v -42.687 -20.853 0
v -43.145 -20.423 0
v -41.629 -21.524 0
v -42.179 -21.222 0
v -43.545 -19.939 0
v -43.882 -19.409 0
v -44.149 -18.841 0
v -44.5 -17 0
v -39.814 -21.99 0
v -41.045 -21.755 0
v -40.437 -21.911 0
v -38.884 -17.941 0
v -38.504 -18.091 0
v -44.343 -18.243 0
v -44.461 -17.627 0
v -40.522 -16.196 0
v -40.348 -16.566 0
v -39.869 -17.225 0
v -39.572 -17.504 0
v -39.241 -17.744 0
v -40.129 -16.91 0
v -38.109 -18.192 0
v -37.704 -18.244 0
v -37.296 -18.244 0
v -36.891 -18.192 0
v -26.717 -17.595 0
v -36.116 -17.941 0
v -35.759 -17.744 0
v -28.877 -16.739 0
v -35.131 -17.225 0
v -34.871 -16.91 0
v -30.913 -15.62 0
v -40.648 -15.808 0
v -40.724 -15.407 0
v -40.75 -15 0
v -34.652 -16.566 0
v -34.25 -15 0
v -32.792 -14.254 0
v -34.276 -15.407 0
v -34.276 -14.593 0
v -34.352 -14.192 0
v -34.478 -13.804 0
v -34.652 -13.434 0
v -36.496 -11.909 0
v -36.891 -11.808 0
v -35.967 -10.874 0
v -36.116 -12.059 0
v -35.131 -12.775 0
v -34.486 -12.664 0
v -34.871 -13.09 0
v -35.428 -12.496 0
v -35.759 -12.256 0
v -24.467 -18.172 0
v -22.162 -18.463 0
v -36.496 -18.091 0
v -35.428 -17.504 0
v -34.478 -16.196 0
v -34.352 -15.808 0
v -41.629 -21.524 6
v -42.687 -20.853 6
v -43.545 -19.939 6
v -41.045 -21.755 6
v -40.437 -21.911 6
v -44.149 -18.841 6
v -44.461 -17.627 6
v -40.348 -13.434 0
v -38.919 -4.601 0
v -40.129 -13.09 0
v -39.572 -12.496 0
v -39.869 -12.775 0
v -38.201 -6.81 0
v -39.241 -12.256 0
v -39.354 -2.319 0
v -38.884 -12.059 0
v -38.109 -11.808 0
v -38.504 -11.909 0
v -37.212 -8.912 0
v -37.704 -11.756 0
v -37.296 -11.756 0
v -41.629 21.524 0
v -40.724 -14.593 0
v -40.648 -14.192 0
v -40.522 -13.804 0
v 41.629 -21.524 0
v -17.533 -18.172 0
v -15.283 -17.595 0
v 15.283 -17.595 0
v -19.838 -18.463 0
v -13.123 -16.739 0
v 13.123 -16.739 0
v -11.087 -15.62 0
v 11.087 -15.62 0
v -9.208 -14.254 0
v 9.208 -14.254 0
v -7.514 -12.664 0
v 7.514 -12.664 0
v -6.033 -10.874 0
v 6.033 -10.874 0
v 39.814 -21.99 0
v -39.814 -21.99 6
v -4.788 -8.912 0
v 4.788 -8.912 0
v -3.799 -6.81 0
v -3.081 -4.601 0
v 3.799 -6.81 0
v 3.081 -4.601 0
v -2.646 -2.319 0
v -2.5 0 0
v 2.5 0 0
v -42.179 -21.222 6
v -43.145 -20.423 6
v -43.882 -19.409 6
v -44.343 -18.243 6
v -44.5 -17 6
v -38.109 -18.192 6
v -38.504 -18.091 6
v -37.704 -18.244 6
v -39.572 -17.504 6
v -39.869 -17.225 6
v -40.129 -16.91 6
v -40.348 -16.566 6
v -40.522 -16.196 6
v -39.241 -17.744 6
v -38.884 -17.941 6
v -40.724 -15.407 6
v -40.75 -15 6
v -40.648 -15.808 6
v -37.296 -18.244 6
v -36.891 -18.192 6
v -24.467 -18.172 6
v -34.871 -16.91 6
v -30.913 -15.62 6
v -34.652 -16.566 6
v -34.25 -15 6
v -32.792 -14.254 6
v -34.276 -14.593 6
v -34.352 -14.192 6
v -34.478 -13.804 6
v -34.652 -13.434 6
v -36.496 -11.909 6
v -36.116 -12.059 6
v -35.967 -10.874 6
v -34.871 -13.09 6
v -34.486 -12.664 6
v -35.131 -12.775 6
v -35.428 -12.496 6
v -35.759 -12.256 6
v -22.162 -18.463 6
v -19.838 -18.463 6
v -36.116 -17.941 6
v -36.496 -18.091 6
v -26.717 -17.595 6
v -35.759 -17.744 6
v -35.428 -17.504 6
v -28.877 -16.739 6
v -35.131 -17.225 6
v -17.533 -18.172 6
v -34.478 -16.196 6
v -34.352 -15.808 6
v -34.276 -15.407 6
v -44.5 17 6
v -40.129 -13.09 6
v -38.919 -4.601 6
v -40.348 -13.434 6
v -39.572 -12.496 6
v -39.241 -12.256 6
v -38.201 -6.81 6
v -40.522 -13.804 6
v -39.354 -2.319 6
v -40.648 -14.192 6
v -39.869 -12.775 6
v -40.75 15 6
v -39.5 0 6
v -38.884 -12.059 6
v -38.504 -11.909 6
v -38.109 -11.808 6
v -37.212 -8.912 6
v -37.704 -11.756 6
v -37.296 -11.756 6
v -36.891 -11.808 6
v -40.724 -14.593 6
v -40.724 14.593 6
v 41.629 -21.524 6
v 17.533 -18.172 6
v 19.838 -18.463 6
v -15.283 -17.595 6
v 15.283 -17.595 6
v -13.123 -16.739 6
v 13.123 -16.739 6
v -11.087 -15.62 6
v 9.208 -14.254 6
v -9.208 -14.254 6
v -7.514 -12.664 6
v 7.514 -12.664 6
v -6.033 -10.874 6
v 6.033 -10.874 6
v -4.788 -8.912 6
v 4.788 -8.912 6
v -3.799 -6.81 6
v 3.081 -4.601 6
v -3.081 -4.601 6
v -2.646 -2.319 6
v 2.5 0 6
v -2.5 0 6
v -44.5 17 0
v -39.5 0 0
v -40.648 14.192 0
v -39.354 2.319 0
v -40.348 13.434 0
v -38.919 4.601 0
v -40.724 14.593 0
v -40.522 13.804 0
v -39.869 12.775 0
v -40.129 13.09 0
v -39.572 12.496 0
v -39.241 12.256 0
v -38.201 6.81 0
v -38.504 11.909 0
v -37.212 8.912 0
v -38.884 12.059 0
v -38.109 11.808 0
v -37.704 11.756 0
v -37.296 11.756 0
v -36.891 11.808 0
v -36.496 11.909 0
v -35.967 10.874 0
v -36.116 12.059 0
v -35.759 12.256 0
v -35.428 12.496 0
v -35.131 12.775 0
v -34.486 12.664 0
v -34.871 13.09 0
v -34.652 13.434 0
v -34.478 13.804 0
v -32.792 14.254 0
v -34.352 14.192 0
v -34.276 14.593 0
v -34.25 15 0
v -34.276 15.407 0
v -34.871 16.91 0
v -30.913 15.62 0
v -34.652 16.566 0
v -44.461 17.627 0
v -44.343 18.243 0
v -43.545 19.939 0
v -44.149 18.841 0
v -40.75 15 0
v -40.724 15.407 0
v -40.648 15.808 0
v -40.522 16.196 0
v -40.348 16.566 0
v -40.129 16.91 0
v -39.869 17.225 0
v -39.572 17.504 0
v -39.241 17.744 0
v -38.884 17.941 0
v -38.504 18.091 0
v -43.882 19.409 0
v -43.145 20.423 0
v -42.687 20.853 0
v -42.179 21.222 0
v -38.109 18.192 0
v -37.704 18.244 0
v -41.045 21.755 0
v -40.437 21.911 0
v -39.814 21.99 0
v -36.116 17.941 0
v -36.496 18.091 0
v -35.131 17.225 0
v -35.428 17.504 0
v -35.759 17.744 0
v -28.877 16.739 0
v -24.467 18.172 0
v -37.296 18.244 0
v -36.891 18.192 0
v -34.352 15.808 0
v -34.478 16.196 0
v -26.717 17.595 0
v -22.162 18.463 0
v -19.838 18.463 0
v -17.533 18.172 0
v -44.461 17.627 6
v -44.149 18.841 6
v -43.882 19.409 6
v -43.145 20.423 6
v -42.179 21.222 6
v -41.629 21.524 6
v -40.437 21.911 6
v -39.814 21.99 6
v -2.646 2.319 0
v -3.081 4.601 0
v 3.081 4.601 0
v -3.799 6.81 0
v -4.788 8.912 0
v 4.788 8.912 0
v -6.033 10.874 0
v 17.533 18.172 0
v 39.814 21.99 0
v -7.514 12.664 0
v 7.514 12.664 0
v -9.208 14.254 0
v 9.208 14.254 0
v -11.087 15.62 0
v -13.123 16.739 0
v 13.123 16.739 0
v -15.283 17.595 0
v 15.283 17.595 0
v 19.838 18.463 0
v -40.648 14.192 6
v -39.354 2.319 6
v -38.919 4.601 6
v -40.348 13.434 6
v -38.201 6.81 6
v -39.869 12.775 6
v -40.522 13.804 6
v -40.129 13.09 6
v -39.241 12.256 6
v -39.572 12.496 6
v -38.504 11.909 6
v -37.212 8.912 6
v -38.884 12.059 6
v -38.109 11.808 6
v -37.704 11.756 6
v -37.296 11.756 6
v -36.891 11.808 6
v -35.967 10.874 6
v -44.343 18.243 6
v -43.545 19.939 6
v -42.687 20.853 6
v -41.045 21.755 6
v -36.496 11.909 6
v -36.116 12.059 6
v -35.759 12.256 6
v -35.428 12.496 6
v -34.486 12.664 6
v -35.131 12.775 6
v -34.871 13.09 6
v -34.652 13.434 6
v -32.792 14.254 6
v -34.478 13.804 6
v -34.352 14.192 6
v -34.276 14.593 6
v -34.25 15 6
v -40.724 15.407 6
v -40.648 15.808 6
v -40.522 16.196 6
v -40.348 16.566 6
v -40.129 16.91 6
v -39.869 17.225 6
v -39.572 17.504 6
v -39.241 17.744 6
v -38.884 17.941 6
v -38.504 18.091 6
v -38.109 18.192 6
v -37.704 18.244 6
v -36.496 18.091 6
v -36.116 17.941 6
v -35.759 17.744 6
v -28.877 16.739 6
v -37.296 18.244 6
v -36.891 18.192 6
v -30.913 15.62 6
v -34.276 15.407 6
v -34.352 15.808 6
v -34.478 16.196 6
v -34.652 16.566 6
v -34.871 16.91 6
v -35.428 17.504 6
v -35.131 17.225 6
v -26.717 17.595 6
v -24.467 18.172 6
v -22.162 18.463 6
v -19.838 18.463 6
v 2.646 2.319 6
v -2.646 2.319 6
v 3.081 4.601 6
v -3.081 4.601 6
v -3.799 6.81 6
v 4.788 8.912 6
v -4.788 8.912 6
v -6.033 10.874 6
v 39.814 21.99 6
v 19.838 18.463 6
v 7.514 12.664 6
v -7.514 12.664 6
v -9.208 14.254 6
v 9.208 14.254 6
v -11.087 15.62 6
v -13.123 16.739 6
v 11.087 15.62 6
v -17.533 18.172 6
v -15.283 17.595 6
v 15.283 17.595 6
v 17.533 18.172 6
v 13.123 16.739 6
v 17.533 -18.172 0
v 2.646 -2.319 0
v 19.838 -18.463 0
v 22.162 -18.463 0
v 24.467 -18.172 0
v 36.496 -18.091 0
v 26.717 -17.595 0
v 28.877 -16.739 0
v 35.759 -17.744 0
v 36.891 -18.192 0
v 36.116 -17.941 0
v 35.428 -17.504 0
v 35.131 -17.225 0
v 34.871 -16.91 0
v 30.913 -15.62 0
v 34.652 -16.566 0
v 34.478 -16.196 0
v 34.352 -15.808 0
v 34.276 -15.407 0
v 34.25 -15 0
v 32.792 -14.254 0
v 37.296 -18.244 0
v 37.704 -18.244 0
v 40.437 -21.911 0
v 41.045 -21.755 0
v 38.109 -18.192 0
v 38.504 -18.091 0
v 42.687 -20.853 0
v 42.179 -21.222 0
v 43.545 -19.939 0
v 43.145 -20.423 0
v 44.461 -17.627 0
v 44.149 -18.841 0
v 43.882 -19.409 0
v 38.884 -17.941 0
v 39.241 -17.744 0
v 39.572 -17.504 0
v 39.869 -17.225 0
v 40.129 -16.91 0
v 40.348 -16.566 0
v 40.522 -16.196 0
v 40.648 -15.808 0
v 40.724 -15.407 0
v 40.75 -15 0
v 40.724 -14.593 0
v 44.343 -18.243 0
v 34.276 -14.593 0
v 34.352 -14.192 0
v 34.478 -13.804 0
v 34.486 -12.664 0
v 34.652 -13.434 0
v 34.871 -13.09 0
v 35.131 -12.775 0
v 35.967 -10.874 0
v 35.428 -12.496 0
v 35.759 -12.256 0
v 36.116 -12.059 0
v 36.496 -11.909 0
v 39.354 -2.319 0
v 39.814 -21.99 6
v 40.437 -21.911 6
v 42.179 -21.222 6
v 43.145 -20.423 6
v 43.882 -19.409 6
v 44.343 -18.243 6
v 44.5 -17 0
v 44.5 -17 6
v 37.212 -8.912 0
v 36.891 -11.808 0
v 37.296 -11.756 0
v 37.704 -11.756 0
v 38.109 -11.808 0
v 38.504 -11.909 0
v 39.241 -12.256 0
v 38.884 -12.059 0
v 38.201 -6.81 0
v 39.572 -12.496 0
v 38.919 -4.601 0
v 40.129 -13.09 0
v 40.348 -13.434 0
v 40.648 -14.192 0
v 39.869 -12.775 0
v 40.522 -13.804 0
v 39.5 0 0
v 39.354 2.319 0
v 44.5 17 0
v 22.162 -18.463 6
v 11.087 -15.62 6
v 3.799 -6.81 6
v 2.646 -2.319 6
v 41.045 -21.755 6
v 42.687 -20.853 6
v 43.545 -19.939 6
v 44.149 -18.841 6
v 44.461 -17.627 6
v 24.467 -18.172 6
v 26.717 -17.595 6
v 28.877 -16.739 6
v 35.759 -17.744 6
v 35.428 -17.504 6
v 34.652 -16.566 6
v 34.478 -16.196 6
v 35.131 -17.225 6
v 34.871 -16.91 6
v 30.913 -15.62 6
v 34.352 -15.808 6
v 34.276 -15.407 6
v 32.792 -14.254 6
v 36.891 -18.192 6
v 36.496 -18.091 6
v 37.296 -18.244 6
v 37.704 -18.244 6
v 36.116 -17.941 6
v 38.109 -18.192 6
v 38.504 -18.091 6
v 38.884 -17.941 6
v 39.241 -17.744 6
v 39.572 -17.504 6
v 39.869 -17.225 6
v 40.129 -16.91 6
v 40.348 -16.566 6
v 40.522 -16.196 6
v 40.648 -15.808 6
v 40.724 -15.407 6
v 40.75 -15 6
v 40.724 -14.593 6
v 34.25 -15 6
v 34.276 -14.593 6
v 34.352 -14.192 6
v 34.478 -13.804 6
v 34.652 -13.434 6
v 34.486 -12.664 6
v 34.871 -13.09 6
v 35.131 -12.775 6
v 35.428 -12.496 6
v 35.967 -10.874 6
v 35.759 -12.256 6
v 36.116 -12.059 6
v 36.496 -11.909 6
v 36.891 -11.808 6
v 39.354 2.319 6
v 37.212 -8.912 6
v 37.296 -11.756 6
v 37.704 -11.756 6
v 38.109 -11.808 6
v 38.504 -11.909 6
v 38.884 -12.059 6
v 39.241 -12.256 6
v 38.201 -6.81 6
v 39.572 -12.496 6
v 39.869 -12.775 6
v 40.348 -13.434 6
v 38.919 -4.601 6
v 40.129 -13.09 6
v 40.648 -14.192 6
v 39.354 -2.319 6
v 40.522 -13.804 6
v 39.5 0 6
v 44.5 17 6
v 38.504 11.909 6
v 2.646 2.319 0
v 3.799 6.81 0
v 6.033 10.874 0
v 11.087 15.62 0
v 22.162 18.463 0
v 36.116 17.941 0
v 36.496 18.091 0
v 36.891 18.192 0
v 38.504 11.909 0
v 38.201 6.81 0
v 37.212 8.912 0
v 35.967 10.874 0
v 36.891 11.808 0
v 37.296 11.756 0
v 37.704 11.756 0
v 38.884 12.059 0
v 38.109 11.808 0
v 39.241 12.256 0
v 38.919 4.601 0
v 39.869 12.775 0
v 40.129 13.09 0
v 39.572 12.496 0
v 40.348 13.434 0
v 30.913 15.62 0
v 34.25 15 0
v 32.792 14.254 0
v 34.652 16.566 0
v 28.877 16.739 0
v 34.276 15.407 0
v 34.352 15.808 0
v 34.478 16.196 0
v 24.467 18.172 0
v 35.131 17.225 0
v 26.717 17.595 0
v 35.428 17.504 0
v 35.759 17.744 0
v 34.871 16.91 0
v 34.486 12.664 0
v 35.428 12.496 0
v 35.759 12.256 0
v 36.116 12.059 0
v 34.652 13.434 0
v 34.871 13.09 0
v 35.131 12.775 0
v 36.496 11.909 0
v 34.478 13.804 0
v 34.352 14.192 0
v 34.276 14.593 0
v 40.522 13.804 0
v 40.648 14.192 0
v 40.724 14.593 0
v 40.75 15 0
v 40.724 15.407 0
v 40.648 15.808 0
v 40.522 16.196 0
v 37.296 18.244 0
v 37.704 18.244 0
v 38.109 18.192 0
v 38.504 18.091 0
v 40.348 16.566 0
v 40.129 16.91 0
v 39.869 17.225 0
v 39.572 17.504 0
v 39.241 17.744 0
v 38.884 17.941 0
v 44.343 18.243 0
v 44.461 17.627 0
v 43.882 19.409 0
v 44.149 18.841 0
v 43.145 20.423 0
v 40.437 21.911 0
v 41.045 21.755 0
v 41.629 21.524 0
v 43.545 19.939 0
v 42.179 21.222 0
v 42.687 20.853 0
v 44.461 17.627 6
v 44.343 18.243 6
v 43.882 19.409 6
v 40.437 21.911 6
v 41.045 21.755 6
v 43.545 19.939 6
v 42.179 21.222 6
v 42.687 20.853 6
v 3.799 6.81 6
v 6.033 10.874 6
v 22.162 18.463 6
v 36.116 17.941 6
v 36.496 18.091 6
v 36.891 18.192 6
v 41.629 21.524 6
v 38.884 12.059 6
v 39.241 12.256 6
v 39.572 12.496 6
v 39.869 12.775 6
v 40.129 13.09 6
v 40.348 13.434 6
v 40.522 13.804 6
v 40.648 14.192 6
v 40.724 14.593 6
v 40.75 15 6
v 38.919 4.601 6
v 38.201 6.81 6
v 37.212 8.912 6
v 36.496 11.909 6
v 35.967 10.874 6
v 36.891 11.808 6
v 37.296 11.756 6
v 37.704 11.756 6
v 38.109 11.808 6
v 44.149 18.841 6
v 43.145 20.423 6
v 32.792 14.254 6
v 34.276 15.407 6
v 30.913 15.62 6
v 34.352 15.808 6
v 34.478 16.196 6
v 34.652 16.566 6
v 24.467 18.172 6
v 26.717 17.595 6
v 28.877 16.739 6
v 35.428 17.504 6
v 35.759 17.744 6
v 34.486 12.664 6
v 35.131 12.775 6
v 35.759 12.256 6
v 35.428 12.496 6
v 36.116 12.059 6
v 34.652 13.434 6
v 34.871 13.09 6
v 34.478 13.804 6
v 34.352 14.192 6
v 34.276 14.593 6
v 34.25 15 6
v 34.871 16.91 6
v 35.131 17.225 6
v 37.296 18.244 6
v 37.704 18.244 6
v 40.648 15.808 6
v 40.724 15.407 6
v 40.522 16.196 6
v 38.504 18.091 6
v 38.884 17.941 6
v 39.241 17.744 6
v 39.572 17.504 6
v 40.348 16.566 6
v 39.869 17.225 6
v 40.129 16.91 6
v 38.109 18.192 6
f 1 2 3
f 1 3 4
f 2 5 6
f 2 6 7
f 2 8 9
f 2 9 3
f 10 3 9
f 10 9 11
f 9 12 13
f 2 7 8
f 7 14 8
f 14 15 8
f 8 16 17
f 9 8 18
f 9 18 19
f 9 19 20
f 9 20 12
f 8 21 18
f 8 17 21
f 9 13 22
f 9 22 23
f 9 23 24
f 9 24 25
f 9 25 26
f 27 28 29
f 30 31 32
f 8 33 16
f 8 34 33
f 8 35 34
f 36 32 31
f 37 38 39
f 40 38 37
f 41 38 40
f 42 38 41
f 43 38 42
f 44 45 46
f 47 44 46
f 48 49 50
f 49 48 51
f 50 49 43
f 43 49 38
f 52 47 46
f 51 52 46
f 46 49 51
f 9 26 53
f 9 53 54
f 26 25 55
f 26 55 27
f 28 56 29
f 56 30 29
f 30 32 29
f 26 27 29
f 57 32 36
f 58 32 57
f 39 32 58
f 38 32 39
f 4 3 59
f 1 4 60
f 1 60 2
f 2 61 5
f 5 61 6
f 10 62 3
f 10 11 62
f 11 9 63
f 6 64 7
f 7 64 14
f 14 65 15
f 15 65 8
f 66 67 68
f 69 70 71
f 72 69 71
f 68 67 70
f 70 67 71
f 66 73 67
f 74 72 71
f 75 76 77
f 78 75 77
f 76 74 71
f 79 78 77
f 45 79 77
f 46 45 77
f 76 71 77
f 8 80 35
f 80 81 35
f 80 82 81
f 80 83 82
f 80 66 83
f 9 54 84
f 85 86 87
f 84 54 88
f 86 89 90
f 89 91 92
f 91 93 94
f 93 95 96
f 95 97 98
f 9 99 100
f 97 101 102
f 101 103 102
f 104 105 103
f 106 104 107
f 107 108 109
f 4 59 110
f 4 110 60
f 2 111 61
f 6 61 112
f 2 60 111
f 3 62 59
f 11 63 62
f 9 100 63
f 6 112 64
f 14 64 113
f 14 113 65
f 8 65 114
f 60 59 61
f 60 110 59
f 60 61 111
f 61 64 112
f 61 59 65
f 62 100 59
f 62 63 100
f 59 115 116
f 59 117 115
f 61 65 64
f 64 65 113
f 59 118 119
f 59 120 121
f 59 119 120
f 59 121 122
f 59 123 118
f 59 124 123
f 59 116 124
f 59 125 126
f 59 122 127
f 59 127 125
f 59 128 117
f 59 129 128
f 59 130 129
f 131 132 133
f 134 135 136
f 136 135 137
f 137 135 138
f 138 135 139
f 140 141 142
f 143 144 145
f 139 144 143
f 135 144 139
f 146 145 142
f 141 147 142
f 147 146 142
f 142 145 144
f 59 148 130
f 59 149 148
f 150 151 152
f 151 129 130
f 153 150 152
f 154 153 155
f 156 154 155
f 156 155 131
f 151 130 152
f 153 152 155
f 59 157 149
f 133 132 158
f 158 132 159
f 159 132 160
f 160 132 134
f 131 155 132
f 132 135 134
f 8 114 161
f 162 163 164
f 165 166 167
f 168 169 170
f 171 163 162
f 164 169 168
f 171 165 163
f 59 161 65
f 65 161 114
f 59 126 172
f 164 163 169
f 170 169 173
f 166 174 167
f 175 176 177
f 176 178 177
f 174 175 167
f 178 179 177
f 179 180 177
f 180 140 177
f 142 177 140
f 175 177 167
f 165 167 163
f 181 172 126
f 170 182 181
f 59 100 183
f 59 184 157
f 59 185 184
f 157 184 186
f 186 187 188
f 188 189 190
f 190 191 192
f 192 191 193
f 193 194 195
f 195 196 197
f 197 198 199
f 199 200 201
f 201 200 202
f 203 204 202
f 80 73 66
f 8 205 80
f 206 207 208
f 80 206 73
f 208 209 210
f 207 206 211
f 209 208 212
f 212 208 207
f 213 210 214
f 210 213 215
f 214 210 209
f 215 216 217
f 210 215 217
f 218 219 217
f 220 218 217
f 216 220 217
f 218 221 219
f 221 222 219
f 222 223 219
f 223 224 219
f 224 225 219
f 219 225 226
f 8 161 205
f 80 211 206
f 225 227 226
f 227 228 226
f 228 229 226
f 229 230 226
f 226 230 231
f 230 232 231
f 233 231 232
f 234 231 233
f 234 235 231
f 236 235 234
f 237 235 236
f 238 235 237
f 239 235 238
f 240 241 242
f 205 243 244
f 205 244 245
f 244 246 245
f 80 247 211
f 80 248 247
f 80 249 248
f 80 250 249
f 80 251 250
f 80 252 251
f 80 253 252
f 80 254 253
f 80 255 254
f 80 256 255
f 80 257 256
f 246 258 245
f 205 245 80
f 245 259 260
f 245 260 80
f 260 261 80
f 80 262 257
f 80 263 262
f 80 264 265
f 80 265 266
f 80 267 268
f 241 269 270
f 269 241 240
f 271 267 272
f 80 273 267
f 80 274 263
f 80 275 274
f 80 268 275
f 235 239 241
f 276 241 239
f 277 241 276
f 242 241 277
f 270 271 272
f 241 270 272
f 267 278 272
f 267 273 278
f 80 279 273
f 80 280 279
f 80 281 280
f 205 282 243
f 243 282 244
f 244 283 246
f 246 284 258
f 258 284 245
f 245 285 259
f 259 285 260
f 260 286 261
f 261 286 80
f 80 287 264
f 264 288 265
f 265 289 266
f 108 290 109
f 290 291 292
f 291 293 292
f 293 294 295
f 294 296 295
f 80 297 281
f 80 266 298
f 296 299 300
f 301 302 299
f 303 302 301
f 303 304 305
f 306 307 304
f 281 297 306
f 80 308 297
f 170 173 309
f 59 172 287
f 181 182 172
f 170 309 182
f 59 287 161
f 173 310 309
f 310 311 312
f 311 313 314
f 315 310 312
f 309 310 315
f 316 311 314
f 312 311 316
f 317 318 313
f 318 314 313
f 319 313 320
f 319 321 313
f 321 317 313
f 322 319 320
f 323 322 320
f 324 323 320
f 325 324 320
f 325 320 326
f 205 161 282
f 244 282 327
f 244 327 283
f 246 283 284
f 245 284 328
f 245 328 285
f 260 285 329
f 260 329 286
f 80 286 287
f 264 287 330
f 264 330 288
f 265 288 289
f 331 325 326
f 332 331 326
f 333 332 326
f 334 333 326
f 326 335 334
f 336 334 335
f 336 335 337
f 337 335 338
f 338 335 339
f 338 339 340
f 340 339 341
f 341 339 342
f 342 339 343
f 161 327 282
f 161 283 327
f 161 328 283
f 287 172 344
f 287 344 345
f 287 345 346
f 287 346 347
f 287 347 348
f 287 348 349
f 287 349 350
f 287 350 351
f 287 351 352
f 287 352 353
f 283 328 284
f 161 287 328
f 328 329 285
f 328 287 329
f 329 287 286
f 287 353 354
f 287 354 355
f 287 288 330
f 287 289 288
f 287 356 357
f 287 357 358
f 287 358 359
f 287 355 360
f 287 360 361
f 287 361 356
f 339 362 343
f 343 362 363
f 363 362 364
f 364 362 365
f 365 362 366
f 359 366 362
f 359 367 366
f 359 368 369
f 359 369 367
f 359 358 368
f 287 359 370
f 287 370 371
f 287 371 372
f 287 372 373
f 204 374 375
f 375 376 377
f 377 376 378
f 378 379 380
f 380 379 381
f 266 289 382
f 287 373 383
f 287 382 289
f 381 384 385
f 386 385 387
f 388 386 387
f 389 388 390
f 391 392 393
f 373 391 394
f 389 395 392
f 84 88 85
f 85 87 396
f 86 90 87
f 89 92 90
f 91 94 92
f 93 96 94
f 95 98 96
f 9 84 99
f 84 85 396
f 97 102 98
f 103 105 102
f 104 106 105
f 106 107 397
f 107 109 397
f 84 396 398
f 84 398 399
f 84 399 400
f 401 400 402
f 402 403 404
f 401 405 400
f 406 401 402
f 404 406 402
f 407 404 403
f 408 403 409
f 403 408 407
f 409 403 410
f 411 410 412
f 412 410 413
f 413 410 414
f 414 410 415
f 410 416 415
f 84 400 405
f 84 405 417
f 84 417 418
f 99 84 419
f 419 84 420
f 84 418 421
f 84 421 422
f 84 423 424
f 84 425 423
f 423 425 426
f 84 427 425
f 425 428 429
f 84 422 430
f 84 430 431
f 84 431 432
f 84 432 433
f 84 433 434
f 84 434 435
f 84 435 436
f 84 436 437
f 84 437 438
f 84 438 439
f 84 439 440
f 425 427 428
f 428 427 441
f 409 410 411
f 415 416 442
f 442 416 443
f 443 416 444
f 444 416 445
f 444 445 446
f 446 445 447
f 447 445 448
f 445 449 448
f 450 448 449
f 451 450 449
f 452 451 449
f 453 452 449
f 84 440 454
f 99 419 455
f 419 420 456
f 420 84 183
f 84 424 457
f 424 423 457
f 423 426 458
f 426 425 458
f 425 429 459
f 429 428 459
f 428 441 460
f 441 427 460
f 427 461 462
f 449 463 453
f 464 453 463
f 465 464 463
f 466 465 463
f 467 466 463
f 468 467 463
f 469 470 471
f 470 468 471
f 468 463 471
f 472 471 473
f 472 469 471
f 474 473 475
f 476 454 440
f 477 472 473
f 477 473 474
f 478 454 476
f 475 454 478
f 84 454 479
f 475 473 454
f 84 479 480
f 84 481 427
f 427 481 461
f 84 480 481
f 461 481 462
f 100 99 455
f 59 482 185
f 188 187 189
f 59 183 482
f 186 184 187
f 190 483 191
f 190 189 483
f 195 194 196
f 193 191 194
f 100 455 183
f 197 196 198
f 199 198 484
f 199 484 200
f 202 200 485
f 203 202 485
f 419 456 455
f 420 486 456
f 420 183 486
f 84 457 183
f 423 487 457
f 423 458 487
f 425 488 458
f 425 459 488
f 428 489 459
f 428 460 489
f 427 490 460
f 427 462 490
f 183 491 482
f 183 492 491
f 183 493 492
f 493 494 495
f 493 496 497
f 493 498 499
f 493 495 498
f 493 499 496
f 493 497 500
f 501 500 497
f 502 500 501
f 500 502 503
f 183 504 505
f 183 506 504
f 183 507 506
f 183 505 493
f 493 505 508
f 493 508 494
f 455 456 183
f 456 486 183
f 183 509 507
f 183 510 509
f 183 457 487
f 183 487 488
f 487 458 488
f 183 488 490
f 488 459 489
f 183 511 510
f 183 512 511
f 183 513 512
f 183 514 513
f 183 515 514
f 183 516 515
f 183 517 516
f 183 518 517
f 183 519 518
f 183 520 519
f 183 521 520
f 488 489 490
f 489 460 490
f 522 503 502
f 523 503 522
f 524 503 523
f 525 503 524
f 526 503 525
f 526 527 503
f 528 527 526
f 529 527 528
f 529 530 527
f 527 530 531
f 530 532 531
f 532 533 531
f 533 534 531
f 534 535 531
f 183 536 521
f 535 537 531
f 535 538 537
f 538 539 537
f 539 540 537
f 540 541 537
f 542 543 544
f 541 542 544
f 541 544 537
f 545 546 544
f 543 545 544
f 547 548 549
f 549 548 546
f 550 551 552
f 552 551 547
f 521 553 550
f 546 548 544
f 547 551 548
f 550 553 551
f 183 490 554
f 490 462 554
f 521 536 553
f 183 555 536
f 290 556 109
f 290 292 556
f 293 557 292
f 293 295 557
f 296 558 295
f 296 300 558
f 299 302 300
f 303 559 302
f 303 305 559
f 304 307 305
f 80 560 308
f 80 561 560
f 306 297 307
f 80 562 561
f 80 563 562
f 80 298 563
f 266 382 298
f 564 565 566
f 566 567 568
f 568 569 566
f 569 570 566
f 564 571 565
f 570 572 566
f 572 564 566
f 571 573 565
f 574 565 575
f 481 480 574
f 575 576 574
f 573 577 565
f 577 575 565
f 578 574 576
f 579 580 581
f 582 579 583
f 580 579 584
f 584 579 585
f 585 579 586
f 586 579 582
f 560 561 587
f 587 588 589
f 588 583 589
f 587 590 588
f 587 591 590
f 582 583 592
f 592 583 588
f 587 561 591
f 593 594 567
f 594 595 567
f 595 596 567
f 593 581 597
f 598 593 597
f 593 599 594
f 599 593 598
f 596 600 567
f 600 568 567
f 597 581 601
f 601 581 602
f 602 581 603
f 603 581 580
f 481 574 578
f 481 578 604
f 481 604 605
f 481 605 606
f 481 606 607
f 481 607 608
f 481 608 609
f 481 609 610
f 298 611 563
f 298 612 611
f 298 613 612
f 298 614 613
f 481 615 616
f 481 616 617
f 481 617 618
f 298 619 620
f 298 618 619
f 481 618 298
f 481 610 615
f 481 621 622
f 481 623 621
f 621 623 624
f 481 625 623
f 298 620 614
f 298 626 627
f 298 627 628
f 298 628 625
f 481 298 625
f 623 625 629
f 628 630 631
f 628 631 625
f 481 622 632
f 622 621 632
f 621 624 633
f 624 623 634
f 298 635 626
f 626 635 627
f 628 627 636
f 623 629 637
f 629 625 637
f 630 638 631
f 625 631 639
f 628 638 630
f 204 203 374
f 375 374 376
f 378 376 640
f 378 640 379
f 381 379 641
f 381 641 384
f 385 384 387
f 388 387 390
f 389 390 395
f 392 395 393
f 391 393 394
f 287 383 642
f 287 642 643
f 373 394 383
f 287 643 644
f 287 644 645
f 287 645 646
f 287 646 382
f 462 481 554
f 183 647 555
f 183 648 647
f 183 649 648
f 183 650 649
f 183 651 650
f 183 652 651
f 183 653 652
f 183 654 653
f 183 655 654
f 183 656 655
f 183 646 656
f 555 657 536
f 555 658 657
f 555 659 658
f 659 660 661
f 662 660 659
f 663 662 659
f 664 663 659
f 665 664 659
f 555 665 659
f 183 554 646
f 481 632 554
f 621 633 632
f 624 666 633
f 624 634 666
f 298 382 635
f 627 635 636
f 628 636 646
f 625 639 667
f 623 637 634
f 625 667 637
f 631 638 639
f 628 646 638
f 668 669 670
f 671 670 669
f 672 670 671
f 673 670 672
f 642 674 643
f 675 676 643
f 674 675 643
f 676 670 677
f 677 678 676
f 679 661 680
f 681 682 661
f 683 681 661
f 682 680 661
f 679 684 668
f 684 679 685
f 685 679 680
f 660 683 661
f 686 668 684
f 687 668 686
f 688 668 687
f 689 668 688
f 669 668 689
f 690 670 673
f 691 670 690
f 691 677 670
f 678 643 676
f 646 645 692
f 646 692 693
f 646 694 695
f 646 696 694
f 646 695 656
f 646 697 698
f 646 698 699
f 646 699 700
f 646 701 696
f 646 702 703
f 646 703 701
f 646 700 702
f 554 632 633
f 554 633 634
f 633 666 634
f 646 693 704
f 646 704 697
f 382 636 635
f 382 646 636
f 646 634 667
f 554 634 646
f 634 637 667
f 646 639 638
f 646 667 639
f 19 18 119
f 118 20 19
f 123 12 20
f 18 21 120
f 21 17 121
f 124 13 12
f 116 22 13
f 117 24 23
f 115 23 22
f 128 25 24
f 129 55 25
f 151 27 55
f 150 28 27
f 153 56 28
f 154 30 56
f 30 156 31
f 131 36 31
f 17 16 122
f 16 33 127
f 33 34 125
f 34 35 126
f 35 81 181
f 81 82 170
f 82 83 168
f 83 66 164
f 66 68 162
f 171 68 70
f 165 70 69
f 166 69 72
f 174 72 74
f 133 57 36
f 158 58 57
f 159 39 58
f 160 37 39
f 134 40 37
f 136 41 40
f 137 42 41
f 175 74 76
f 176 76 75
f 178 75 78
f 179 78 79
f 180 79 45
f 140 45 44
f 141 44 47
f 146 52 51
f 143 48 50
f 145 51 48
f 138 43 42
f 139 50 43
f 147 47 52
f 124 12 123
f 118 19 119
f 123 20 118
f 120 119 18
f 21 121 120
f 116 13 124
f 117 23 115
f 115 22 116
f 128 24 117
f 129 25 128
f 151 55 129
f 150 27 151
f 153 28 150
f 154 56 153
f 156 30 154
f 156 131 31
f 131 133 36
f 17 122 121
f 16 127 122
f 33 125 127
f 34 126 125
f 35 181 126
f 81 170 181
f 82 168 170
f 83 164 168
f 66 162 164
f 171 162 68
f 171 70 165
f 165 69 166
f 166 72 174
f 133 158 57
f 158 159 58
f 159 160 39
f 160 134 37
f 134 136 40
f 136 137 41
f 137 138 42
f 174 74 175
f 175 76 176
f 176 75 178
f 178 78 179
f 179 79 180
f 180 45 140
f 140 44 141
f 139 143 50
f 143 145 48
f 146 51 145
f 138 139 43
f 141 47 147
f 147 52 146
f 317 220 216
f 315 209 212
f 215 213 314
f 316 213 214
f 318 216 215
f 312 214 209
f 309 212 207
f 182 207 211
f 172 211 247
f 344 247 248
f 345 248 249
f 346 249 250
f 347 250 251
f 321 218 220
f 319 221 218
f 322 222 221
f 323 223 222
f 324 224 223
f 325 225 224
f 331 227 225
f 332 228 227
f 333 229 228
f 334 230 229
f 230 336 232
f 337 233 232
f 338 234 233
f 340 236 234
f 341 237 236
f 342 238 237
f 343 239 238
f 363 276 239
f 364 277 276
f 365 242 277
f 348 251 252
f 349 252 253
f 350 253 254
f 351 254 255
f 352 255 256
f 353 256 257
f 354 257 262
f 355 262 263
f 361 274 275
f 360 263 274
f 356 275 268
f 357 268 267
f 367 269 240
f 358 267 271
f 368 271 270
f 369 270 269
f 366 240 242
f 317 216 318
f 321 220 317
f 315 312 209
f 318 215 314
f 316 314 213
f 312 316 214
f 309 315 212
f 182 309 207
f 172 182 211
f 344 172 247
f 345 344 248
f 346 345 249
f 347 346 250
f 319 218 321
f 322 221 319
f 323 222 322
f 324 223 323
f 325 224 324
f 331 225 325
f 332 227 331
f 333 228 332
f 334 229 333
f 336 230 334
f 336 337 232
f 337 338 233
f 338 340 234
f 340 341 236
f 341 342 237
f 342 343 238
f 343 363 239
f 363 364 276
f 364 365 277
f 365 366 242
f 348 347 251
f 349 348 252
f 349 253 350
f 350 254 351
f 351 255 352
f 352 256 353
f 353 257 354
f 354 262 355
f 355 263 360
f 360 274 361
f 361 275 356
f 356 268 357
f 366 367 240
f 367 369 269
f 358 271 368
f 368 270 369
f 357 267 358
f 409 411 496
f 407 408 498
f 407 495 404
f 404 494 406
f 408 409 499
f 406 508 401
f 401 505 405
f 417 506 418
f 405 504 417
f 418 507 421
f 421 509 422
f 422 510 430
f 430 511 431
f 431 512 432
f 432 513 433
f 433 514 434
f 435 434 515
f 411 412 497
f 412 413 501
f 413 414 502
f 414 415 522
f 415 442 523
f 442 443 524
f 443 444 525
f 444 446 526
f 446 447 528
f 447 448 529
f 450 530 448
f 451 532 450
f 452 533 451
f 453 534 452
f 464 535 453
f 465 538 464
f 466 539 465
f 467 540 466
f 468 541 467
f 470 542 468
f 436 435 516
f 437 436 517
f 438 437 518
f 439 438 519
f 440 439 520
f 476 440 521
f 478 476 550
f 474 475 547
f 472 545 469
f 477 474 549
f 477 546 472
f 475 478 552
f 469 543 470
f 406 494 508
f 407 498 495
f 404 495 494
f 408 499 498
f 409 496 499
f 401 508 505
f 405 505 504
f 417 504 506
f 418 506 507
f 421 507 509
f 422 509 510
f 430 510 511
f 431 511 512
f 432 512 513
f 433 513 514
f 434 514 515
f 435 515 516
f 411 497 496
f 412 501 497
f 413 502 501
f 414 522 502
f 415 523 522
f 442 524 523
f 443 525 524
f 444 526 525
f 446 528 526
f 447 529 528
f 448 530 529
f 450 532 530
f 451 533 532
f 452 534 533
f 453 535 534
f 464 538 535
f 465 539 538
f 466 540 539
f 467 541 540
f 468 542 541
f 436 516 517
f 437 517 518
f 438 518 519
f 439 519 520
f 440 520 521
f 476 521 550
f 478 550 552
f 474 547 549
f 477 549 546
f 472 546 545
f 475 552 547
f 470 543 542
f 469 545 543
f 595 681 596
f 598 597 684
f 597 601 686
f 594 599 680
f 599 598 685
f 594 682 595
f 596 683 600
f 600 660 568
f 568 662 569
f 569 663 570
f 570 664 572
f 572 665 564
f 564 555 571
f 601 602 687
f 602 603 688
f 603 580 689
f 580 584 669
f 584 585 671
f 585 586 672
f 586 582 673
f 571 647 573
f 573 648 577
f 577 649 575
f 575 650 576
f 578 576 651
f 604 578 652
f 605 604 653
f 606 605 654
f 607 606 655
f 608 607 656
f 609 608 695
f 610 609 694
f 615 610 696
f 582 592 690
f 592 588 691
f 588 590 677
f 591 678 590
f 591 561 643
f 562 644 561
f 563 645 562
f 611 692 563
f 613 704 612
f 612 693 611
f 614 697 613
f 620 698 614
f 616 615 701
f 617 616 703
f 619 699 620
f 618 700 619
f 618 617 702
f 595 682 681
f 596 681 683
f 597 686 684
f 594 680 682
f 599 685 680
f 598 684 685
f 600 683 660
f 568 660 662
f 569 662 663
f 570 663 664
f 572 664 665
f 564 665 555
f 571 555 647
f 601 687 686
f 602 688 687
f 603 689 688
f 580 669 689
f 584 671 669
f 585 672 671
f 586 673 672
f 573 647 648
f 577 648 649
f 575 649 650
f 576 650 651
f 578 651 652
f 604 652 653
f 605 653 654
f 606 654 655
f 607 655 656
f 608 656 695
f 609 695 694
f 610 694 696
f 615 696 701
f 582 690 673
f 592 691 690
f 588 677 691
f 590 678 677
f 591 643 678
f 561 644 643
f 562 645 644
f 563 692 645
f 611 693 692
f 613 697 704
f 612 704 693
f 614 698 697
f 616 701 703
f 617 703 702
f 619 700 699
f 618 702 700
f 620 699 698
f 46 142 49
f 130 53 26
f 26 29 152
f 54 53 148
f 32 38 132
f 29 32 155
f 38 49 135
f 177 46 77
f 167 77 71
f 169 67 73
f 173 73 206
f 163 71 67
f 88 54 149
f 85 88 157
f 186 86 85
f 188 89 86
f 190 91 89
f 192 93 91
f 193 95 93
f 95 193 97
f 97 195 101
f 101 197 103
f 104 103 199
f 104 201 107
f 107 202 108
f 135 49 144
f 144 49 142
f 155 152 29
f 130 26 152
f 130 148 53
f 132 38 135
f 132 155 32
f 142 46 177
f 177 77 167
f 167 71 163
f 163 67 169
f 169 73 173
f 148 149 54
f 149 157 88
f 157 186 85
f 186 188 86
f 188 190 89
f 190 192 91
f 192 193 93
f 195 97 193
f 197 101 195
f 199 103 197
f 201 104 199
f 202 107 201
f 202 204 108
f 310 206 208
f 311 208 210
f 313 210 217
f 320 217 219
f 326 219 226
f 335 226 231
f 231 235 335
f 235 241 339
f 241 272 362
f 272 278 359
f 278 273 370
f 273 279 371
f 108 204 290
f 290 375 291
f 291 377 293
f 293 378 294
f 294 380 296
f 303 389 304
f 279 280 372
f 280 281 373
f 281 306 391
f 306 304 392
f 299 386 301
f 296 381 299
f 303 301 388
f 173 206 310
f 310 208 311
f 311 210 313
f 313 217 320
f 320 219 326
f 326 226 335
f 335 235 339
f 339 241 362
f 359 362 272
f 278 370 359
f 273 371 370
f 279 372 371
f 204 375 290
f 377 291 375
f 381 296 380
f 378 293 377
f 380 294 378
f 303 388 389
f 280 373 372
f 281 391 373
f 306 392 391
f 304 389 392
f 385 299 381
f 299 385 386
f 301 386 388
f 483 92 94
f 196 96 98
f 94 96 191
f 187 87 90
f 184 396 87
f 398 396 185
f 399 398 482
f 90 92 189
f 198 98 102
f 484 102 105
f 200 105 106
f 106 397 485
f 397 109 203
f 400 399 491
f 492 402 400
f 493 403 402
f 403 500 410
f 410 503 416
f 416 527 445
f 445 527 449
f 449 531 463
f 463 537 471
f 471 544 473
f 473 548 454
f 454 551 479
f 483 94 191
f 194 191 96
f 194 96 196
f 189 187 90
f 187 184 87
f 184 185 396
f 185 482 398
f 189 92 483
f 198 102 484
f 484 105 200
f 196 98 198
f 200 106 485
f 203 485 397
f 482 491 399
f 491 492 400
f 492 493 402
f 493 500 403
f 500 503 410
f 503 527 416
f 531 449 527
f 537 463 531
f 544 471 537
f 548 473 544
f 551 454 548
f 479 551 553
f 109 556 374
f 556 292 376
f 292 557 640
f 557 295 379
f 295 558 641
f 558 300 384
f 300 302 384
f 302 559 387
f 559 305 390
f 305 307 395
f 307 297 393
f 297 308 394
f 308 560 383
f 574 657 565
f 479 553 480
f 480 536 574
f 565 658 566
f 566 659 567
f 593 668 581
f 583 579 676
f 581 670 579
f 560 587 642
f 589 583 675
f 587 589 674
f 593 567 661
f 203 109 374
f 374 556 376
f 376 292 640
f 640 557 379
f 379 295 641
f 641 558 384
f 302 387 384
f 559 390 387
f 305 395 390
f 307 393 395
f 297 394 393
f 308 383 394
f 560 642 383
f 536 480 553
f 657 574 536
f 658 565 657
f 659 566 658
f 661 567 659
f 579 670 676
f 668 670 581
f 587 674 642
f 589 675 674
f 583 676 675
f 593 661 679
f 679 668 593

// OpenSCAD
$fn = 50;

difference() {
	union() {
		hull() {
			translate(v = [-39.5, 17.0, 0]) {
				cylinder(h = 6, r = 5);
			}
			translate(v = [39.5, 17.0, 0]) {
				cylinder(h = 6, r = 5);
			}
			translate(v = [-39.5, -17.0, 0]) {
				cylinder(h = 6, r = 5);
			}
			translate(v = [39.5, -17.0, 0]) {
				cylinder(h = 6, r = 5);
			}
		}
	}
	union() {
		translate(v = [-37.5, -15.0, -100.0]) {
			cylinder(h = 200, r = 3.25);
		}
		translate(v = [-37.5, 15.0, -100.0]) {
			cylinder(h = 200, r = 3.25);
		}
		translate(v = [37.5, -15.0, -100.0]) {
			cylinder(h = 200, r = 3.25);
		}
		translate(v = [37.5, 15.0, -100.0]) {
			cylinder(h = 200, r = 3.25);
		}
		translate(v = [-37.5, -15.0, -100.0]) {
			cylinder(h = 200, r = 1.8);
		}
		translate(v = [-37.5, 15.0, -100.0]) {
			cylinder(h = 200, r = 1.8);
		}
		translate(v = [37.5, -15.0, -100.0]) {
			cylinder(h = 200, r = 1.8);
		}
		translate(v = [37.5, 15.0, -100.0]) {
			cylinder(h = 200, r = 1.8);
		}
		translate(v = [-21.0, 0, 0.0]) {
			cylinder(h = 6, r = 18.5);
		}
		translate(v = [21.0, 0, 0.0]) {
			cylinder(h = 6, r = 18.5);
		}
	}
}
